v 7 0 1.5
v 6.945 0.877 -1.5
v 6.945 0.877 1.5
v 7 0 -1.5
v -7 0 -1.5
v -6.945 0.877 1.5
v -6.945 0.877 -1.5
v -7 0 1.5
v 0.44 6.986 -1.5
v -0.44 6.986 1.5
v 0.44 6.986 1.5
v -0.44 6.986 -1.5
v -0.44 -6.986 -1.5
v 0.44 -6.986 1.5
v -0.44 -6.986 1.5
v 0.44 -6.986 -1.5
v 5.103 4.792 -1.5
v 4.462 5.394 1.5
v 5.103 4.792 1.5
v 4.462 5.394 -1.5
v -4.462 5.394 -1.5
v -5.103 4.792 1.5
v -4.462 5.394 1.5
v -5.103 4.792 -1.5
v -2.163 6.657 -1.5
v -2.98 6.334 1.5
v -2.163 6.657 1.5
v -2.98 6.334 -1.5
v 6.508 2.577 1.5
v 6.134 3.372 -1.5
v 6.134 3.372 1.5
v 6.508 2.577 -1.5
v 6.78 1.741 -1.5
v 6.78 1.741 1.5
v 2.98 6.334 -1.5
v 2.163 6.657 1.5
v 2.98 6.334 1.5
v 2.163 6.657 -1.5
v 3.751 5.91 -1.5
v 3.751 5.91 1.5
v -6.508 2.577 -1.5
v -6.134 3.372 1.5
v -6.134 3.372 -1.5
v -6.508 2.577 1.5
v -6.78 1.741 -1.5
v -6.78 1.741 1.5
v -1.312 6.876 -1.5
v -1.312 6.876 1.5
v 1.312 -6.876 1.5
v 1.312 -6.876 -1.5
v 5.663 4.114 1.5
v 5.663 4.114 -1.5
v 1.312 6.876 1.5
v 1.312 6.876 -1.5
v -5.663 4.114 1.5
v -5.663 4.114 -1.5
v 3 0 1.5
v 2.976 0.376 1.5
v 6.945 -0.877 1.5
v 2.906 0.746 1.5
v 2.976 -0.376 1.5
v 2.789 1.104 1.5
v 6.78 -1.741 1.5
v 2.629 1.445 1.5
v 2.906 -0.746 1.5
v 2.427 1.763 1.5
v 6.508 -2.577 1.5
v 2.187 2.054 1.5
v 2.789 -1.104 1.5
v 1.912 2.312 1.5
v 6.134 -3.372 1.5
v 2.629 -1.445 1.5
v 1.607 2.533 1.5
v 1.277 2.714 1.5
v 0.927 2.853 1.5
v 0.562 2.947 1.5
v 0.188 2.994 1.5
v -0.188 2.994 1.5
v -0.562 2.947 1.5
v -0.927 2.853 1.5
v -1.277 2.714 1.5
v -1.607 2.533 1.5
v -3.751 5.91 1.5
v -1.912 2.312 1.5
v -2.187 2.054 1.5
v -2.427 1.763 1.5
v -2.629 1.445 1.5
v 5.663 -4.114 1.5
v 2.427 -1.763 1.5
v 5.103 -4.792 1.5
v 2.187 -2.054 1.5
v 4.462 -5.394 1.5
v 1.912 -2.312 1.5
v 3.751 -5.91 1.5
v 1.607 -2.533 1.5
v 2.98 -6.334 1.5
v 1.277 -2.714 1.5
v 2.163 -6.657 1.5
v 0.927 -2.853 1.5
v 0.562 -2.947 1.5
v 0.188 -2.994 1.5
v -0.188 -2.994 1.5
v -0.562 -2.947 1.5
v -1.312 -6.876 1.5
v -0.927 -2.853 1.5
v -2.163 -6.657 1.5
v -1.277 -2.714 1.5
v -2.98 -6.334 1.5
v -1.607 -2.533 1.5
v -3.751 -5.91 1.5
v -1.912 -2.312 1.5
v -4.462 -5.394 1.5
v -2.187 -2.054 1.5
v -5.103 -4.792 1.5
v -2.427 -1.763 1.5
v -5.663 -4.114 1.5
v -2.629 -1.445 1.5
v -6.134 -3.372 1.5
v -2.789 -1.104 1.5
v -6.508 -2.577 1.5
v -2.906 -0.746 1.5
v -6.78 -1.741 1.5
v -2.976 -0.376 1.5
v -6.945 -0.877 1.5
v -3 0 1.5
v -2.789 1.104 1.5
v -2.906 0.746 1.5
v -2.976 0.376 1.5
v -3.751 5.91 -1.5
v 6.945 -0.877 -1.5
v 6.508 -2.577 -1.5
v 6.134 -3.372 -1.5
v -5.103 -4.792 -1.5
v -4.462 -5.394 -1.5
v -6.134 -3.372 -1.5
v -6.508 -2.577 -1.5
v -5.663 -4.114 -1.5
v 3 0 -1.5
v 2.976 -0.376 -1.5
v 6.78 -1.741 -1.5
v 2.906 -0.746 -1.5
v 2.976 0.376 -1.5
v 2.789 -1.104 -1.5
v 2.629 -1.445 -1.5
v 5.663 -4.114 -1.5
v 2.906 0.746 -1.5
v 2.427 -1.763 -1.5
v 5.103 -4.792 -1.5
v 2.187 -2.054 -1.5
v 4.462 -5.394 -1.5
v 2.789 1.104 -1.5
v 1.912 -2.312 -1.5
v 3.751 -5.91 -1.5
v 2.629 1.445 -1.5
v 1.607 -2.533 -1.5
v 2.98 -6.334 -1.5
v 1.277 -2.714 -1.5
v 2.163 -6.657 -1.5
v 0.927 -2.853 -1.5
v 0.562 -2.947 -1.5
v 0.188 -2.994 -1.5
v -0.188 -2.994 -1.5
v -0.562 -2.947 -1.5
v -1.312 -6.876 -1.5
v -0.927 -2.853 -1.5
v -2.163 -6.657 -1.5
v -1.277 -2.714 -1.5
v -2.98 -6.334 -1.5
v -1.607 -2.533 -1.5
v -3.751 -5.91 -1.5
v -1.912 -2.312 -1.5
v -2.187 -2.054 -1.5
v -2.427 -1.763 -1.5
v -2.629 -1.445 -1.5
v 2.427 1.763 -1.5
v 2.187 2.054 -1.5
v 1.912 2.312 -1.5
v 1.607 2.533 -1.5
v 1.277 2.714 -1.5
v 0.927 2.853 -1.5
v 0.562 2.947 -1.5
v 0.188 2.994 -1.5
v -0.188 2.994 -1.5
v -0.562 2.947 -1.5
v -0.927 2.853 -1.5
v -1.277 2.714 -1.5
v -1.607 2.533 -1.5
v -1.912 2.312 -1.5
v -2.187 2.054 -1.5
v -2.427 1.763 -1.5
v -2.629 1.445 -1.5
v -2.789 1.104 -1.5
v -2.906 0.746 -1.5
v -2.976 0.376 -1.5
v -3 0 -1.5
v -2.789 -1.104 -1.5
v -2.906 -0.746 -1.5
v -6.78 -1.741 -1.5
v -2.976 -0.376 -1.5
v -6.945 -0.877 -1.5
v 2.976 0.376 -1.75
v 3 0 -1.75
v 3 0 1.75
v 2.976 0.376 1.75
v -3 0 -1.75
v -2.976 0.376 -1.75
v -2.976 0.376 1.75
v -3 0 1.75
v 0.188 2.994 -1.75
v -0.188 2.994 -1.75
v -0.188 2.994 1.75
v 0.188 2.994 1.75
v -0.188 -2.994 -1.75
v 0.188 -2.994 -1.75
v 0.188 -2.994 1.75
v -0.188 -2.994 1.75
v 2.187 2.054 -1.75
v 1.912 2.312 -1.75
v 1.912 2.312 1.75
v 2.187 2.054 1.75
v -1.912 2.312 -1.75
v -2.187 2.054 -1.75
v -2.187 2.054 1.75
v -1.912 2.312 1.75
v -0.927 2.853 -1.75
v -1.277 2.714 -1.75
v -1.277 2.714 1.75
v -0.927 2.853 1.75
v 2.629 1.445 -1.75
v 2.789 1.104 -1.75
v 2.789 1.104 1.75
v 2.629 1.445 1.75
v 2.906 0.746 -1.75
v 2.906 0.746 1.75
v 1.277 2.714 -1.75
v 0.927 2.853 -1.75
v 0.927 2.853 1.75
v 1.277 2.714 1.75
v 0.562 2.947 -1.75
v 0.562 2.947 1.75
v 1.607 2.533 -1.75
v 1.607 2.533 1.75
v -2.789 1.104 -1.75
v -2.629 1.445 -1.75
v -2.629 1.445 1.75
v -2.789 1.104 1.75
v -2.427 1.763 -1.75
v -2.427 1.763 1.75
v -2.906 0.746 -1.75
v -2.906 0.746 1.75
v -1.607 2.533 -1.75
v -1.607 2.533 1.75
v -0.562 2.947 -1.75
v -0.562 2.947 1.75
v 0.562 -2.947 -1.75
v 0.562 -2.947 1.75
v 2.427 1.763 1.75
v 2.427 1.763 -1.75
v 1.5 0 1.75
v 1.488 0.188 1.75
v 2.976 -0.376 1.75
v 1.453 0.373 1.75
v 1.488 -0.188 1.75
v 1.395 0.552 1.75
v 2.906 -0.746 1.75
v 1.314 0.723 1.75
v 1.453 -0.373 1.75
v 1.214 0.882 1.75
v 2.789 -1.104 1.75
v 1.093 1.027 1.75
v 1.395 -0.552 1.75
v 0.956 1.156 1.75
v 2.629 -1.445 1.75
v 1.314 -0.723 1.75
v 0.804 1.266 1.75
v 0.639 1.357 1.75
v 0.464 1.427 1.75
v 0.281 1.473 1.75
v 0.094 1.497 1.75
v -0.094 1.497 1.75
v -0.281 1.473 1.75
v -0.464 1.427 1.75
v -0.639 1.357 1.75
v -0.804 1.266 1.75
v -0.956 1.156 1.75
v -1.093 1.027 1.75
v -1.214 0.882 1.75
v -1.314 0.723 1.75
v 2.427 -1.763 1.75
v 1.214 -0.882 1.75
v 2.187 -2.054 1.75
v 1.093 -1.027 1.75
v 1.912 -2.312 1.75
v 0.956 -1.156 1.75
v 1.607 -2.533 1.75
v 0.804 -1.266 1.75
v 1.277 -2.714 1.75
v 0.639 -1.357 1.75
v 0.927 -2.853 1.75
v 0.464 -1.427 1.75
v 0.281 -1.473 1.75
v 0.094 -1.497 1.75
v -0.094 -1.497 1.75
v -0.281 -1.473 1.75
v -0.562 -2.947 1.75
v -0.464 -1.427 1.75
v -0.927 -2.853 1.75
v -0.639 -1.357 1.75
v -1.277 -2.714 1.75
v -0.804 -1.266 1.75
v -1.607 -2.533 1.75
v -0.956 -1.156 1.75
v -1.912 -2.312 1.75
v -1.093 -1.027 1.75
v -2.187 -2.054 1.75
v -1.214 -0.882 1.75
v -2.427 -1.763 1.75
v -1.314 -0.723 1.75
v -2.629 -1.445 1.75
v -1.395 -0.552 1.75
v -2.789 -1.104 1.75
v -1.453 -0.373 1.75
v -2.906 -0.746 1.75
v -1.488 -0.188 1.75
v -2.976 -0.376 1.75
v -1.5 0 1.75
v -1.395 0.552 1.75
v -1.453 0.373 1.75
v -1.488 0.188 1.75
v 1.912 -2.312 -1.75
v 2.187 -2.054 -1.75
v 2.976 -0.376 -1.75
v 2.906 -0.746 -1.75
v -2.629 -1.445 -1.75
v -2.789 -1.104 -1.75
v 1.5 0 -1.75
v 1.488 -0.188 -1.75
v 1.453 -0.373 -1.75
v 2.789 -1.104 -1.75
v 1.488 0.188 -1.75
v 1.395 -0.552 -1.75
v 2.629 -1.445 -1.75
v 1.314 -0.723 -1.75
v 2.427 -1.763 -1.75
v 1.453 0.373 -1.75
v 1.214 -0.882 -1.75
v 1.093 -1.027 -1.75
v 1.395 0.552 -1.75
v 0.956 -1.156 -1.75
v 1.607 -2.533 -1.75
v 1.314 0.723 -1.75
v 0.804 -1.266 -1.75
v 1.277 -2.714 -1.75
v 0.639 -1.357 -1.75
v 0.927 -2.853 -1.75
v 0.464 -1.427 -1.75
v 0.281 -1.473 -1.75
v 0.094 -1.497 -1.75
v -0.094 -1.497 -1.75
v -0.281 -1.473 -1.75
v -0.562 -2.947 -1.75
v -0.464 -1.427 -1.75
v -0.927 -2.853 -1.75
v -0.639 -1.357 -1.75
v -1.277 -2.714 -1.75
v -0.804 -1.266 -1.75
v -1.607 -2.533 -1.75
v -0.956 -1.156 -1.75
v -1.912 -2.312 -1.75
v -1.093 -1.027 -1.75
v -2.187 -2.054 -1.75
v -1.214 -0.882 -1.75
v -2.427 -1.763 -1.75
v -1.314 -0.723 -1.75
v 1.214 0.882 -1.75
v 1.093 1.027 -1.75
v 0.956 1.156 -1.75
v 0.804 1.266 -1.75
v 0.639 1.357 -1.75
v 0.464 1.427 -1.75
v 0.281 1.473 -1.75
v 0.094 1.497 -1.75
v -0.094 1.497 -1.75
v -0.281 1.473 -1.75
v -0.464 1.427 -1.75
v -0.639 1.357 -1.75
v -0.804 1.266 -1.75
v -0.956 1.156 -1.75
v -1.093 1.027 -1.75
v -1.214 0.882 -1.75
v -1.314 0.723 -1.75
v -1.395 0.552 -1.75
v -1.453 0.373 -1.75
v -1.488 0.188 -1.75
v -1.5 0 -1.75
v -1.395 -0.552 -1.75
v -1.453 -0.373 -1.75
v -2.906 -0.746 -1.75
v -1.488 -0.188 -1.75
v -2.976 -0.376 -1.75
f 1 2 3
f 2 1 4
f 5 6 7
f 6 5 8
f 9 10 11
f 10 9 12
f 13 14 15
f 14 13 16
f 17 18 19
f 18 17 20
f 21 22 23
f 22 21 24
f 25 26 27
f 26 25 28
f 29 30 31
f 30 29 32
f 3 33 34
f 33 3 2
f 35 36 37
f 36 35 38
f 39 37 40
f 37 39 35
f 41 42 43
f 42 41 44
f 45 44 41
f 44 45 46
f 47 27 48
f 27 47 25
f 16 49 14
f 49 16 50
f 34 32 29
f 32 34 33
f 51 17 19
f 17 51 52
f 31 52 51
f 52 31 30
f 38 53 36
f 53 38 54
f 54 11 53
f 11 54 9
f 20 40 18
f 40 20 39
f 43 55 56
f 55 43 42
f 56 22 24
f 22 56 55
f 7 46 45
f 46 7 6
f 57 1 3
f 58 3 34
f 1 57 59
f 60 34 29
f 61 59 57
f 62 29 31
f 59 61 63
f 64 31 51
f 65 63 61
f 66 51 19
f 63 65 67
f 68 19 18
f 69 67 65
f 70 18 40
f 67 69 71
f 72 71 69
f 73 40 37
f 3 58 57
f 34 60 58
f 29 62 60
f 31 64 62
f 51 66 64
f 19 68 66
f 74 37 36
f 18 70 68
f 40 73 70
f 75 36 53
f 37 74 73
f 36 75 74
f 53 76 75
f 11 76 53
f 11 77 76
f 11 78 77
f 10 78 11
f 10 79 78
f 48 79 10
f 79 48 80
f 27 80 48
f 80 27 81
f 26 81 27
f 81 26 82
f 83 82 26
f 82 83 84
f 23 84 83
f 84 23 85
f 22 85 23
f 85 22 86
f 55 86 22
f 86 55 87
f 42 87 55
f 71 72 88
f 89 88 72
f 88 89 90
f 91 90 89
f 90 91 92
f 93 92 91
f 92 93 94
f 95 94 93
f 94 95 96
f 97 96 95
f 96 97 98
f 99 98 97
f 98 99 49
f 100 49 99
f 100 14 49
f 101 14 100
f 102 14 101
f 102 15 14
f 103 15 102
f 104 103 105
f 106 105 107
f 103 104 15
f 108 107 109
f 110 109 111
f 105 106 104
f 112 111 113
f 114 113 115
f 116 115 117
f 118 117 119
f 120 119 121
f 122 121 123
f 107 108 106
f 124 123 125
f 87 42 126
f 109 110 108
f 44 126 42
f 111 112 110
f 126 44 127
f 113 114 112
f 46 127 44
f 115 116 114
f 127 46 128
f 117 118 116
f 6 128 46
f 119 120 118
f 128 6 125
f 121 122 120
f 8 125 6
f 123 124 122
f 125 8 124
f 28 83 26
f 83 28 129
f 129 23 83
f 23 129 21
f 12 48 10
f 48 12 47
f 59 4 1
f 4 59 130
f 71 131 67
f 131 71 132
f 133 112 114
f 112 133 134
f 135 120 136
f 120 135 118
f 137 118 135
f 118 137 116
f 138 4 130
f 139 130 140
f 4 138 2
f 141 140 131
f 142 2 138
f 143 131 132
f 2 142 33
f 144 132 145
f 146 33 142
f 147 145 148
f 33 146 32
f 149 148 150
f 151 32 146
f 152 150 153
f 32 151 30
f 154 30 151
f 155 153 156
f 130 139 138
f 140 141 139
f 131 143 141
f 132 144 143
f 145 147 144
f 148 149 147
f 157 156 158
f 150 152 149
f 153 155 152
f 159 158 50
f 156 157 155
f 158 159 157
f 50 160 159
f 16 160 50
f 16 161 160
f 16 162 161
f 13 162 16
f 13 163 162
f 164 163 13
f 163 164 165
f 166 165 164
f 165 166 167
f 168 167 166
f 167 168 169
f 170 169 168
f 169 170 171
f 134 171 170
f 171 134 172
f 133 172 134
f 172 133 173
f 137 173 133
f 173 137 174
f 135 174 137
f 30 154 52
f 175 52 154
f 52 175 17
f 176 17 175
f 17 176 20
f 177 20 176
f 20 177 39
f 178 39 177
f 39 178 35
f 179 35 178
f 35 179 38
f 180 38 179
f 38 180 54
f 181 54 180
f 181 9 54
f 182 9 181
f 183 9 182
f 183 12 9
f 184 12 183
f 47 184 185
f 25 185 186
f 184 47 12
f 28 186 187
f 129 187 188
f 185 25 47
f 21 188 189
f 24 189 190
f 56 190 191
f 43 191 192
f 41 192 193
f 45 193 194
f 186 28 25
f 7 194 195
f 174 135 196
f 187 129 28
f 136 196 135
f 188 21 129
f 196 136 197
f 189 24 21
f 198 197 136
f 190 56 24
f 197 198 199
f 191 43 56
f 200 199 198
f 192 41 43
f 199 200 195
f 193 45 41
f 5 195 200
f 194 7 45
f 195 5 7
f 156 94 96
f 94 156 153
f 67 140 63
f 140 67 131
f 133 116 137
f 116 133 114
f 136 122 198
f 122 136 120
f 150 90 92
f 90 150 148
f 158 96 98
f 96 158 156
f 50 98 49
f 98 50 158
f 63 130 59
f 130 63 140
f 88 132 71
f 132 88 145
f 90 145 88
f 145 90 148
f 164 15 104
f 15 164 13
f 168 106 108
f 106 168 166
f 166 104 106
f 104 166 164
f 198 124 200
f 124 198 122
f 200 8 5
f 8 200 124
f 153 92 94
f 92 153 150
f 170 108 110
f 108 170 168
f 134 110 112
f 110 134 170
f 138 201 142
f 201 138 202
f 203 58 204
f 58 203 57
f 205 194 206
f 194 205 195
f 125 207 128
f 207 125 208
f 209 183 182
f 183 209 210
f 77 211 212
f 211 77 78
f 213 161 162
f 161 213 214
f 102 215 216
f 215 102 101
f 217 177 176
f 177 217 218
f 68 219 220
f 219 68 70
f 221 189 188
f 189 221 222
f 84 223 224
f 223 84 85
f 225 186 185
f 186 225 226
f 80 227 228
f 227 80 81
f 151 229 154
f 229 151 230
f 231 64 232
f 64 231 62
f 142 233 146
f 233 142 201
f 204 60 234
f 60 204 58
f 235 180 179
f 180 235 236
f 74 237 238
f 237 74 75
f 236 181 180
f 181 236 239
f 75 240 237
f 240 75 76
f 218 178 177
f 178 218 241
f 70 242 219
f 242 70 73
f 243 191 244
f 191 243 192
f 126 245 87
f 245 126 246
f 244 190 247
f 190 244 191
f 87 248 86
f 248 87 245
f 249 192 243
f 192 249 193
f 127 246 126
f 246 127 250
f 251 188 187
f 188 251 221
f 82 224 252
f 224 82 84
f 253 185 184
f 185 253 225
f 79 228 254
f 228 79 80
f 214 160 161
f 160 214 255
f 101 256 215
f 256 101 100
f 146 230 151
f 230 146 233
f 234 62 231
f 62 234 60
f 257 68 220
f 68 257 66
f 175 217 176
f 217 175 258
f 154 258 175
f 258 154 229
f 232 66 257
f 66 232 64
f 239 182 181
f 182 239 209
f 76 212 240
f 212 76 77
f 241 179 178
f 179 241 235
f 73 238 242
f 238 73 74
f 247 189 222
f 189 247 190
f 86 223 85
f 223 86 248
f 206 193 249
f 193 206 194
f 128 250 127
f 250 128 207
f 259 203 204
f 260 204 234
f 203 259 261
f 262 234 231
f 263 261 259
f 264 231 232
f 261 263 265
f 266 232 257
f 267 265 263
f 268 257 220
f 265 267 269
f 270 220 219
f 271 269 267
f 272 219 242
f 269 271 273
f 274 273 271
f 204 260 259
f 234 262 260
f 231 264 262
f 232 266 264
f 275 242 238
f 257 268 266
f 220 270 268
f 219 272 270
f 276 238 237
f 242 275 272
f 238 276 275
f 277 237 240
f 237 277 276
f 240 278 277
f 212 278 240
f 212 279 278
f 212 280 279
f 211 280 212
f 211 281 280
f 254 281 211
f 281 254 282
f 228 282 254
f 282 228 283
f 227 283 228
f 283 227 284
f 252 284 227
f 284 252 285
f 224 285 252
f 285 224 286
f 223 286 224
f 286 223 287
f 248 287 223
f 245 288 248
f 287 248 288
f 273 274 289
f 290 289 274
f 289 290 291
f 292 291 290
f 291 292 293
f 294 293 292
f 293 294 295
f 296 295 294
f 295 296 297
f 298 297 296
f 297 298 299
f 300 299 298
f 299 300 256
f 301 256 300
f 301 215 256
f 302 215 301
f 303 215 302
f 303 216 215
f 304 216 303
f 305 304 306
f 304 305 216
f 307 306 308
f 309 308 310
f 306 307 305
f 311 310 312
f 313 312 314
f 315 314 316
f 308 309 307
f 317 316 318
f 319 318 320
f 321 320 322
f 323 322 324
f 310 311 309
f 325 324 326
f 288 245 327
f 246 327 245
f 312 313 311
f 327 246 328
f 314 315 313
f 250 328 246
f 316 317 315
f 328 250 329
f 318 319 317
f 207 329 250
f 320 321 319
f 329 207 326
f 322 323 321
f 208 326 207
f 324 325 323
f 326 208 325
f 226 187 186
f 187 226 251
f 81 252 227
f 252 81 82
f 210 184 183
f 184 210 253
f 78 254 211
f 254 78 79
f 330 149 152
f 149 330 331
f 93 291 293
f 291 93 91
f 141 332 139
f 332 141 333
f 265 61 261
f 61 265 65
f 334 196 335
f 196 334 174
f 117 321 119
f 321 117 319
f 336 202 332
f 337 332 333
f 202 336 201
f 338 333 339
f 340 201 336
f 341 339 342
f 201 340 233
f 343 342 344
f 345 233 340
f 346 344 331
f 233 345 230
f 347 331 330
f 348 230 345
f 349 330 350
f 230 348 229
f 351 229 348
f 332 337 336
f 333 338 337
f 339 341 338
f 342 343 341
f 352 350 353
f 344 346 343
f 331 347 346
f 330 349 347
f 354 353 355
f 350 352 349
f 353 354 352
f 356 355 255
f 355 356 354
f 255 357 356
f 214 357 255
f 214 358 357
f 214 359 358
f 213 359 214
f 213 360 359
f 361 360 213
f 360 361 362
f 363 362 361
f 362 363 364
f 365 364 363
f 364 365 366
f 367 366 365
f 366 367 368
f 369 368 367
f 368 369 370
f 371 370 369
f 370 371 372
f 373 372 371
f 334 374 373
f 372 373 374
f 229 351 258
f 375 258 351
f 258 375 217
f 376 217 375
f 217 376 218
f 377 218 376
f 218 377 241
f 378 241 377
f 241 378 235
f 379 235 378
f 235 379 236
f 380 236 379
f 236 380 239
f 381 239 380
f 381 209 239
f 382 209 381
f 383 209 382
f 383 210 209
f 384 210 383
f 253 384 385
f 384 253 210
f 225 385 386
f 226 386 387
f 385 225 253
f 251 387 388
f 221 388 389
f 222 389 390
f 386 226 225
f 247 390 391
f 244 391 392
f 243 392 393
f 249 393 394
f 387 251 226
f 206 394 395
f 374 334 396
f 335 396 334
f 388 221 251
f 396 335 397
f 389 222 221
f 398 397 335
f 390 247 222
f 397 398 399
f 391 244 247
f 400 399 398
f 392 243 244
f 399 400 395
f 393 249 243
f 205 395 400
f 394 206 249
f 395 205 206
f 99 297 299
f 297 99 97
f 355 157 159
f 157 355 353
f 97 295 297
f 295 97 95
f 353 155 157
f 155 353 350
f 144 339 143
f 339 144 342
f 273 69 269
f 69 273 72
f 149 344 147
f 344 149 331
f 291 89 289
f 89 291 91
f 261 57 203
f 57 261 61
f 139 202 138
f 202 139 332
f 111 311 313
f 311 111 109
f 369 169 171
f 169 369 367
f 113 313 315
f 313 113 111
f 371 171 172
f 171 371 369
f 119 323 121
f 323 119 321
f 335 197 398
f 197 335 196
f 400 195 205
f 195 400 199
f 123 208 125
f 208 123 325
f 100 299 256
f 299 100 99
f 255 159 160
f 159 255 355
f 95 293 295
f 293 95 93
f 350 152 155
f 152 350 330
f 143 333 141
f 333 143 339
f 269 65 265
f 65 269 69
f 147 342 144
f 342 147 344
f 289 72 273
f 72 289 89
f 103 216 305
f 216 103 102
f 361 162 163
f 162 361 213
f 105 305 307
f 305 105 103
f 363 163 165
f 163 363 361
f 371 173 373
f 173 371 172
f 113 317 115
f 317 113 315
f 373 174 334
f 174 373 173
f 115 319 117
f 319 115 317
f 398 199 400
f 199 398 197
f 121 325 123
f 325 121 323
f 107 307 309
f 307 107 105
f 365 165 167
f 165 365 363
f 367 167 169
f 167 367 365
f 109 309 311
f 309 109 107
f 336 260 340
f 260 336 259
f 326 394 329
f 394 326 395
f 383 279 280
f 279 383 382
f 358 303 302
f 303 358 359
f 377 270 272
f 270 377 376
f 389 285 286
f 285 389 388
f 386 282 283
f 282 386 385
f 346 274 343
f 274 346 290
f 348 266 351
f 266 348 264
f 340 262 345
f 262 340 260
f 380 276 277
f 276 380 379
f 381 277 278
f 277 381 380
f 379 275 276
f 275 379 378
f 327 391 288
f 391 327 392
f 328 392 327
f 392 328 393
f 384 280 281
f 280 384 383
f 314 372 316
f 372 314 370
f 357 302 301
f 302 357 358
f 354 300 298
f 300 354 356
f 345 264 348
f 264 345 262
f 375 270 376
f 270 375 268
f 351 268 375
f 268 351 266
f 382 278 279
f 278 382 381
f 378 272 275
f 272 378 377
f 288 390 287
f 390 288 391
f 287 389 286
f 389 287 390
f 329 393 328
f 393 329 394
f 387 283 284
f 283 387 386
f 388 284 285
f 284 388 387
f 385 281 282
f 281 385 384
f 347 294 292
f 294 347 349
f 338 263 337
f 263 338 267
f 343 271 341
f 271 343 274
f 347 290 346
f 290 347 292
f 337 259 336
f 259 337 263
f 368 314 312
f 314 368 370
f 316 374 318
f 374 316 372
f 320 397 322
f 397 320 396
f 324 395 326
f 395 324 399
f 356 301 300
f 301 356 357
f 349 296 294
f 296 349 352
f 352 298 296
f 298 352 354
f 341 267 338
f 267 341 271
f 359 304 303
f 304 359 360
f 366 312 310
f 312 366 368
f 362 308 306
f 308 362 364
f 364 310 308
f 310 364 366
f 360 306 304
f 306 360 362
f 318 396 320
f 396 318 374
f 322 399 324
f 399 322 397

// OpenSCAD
$fn = 50;


difference() {
	union() {
		translate(v = [0, 0, -1.5000000000]) {
			rotate(a = [0, 0, 0]) {
				cylinder(h = 3, r = 7.0000000000);
			}
		}
		translate(v = [0, 0, -1.7500000000]) {
			rotate(a = [0, 0, 0]) {
				cylinder(h = 3.5000000000, r = 3.0000000000);
			}
		}
	}
	union() {
		translate(v = [0, 0, -125.0000000000]) {
			rotate(a = [0, 0, 0]) {
				cylinder(h = 250, r = 1.5000000000);
			}
		}
	}
}
